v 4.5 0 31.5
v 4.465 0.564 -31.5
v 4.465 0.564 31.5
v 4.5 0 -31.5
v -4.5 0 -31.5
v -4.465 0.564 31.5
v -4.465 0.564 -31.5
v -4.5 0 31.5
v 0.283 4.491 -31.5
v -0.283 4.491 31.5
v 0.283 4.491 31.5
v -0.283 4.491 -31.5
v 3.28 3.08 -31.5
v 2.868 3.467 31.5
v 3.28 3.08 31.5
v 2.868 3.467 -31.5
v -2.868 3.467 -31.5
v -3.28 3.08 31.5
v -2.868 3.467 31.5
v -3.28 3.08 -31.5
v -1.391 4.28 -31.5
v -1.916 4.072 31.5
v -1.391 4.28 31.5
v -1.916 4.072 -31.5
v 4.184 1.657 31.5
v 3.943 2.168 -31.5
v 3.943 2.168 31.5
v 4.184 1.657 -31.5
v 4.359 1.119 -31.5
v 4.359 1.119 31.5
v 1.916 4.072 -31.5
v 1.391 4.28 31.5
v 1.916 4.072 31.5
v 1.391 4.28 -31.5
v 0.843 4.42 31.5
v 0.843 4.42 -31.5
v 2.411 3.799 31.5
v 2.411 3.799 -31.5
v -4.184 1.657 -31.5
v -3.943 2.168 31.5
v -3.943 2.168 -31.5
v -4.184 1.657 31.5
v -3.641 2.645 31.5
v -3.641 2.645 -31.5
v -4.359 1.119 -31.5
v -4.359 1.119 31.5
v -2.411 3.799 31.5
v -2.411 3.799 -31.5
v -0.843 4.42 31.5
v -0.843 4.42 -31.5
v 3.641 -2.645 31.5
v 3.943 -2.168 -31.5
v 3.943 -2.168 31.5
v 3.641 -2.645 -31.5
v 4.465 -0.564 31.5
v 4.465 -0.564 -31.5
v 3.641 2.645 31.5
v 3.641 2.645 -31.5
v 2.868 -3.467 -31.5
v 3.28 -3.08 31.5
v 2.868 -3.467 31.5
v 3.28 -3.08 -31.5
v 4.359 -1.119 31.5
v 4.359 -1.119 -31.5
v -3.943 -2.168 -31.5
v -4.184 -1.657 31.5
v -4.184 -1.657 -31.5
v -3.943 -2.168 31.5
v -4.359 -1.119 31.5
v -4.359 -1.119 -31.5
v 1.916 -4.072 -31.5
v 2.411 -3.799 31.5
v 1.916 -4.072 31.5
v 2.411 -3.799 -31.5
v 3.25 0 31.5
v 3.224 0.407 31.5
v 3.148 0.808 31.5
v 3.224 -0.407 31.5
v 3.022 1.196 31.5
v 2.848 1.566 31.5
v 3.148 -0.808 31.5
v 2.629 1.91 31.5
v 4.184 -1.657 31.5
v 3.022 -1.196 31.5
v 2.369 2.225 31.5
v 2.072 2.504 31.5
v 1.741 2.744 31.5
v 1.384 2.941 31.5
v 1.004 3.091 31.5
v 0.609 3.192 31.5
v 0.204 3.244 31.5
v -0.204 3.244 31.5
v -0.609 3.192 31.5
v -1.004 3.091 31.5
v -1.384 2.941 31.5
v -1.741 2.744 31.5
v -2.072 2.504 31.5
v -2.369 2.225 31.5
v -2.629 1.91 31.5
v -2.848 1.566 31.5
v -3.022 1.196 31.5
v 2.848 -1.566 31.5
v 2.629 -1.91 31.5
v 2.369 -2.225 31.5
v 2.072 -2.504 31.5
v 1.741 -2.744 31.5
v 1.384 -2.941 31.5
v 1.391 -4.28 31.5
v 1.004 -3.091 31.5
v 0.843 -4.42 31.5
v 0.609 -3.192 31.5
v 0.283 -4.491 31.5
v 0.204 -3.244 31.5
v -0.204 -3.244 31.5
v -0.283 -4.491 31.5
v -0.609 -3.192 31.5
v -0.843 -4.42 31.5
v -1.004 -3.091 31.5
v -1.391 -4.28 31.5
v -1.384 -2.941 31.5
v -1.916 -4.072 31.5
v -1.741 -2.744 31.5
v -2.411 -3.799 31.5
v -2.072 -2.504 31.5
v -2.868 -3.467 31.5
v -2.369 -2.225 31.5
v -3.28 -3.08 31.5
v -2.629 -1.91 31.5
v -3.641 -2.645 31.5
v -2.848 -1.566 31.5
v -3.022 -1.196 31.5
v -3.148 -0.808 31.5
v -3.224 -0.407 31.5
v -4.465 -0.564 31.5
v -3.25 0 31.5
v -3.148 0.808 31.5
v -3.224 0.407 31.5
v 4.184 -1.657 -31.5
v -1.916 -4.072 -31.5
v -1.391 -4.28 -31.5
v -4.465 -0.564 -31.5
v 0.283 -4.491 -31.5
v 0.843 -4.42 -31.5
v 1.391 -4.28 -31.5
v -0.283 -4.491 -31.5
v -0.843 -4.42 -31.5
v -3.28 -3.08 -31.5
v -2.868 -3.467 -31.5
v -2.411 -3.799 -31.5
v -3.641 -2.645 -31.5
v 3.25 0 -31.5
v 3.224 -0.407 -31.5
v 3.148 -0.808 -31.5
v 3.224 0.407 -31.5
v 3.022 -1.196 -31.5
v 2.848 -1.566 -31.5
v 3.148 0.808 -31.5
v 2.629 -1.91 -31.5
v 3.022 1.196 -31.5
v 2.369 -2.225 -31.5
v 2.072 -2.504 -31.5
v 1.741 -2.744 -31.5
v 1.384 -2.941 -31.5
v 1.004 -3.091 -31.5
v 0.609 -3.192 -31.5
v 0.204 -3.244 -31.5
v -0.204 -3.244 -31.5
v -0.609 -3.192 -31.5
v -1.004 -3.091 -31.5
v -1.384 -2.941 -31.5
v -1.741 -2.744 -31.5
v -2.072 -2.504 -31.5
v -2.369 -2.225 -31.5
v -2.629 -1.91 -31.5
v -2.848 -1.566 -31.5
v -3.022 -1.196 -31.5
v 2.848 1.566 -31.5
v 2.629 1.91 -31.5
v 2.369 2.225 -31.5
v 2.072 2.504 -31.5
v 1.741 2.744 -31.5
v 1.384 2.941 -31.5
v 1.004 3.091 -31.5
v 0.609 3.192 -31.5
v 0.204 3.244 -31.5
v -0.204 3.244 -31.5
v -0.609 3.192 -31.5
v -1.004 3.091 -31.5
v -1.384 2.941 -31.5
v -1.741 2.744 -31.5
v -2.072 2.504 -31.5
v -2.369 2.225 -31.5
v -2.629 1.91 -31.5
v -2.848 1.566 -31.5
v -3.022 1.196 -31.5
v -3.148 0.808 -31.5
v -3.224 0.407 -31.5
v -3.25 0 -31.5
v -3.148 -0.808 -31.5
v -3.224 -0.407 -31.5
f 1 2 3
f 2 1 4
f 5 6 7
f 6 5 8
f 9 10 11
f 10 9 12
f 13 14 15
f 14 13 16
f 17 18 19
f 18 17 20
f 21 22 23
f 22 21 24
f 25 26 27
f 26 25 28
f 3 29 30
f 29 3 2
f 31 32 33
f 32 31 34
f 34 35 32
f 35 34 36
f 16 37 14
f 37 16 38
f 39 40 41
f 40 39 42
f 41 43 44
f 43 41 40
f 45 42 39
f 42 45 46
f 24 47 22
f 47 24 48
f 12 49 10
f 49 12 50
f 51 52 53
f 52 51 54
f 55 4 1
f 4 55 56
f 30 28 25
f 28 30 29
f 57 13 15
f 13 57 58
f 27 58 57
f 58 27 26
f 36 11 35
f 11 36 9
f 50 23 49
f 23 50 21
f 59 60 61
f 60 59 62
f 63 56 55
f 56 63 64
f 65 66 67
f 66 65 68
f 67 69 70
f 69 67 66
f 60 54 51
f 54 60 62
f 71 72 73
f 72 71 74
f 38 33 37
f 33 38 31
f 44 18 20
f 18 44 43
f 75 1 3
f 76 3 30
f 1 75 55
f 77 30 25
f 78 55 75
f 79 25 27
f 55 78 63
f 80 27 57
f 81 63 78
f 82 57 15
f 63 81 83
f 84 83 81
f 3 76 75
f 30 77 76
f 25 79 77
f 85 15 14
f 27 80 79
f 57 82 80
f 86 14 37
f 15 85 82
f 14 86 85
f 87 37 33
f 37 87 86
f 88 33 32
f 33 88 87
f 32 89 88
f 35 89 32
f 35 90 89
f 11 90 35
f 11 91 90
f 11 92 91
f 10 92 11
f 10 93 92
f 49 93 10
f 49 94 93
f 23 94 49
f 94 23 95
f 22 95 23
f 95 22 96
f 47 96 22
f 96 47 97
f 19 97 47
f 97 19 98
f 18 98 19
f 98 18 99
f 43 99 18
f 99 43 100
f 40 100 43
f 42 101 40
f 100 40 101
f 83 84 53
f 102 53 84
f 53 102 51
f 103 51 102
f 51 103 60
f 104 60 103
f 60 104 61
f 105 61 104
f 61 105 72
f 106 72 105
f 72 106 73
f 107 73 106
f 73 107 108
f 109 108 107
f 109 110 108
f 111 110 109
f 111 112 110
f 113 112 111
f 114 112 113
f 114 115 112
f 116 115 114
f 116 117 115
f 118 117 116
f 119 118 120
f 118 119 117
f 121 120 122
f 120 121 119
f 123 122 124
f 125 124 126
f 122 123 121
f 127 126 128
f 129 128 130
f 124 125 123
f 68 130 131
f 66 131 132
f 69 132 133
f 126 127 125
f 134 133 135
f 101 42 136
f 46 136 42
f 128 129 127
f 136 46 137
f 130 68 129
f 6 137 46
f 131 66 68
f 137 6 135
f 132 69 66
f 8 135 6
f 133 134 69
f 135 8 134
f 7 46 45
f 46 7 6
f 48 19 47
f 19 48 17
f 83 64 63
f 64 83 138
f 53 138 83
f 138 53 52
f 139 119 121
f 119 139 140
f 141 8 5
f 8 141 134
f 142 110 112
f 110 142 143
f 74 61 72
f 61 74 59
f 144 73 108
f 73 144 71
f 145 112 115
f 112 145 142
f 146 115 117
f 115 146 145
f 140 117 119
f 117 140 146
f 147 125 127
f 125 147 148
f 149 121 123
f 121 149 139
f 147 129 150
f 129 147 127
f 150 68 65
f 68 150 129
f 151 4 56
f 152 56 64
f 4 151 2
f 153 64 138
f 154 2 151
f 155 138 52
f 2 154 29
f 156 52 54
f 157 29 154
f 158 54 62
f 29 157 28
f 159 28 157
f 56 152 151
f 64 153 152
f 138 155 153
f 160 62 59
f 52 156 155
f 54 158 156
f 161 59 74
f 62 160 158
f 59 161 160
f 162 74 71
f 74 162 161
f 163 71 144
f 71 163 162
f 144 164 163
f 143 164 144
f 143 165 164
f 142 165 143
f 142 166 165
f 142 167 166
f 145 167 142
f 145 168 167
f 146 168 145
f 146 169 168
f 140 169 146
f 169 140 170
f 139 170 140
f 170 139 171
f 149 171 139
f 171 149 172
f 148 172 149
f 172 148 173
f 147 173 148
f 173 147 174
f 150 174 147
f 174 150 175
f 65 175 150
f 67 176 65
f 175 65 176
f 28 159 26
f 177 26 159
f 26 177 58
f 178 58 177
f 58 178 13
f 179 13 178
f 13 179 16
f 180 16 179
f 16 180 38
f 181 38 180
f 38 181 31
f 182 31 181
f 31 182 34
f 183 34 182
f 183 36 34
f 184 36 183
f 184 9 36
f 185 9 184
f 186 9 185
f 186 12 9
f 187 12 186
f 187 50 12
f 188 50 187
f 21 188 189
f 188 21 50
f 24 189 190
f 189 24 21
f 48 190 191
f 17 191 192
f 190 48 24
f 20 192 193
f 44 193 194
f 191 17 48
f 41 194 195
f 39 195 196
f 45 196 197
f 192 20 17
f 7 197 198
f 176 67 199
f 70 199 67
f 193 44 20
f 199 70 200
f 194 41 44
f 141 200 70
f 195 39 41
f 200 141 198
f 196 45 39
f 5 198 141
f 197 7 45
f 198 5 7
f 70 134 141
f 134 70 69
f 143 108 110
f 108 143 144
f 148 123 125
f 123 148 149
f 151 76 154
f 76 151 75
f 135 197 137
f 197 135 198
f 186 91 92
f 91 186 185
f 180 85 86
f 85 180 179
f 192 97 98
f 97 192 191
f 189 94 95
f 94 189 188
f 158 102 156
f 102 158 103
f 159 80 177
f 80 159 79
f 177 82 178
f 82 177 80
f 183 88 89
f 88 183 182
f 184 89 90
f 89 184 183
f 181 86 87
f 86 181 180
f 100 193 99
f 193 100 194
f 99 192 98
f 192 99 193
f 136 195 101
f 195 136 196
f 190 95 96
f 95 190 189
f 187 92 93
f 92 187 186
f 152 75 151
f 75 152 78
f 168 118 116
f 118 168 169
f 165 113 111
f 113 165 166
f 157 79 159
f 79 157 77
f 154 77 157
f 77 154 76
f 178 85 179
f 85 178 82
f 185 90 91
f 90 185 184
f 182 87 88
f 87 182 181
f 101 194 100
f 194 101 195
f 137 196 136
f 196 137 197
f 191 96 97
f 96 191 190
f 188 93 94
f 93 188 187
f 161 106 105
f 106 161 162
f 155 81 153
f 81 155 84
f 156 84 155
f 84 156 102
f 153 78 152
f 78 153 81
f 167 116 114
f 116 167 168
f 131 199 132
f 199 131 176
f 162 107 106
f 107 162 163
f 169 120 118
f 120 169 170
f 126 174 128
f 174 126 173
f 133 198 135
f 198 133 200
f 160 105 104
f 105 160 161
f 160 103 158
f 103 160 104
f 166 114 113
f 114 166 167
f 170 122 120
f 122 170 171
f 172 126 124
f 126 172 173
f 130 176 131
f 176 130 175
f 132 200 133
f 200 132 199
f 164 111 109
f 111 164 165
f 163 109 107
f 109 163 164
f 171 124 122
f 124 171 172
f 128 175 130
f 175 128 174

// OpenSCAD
$fn = 50;


difference() {
	union() {
		translate(v = [0, 0, -31.5000000000]) {
			cylinder(h = 63, r = 4.5000000000);
		}
	}
	union() {
		translate(v = [0, 0, -100.0000000000]) {
			cylinder(h = 200, r = 3.2500000000);
		}
	}
}
